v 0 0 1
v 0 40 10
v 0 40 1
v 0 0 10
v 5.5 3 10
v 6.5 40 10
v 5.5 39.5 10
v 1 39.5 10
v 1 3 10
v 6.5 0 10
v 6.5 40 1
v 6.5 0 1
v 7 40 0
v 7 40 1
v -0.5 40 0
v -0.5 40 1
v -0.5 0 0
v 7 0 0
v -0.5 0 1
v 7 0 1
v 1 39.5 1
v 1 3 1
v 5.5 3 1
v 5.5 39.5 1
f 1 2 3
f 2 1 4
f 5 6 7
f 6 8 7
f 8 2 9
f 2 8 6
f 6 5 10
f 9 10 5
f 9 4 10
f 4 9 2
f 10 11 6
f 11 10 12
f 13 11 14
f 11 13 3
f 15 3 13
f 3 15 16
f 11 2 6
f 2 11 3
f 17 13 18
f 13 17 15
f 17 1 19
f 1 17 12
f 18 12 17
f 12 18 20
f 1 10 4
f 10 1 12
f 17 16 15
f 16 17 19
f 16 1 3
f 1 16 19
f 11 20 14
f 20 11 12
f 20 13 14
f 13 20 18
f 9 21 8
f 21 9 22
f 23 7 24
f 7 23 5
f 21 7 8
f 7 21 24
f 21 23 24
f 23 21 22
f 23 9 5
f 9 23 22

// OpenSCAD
difference() {
    union() {
        cube([6.5,40,10]);
        // lip
        translate([-0.5,0,0])
        cube([7.5,40,1]);
    }
    
    translate([1,3,1])
    cube([4.5,36.5,12]);
}
